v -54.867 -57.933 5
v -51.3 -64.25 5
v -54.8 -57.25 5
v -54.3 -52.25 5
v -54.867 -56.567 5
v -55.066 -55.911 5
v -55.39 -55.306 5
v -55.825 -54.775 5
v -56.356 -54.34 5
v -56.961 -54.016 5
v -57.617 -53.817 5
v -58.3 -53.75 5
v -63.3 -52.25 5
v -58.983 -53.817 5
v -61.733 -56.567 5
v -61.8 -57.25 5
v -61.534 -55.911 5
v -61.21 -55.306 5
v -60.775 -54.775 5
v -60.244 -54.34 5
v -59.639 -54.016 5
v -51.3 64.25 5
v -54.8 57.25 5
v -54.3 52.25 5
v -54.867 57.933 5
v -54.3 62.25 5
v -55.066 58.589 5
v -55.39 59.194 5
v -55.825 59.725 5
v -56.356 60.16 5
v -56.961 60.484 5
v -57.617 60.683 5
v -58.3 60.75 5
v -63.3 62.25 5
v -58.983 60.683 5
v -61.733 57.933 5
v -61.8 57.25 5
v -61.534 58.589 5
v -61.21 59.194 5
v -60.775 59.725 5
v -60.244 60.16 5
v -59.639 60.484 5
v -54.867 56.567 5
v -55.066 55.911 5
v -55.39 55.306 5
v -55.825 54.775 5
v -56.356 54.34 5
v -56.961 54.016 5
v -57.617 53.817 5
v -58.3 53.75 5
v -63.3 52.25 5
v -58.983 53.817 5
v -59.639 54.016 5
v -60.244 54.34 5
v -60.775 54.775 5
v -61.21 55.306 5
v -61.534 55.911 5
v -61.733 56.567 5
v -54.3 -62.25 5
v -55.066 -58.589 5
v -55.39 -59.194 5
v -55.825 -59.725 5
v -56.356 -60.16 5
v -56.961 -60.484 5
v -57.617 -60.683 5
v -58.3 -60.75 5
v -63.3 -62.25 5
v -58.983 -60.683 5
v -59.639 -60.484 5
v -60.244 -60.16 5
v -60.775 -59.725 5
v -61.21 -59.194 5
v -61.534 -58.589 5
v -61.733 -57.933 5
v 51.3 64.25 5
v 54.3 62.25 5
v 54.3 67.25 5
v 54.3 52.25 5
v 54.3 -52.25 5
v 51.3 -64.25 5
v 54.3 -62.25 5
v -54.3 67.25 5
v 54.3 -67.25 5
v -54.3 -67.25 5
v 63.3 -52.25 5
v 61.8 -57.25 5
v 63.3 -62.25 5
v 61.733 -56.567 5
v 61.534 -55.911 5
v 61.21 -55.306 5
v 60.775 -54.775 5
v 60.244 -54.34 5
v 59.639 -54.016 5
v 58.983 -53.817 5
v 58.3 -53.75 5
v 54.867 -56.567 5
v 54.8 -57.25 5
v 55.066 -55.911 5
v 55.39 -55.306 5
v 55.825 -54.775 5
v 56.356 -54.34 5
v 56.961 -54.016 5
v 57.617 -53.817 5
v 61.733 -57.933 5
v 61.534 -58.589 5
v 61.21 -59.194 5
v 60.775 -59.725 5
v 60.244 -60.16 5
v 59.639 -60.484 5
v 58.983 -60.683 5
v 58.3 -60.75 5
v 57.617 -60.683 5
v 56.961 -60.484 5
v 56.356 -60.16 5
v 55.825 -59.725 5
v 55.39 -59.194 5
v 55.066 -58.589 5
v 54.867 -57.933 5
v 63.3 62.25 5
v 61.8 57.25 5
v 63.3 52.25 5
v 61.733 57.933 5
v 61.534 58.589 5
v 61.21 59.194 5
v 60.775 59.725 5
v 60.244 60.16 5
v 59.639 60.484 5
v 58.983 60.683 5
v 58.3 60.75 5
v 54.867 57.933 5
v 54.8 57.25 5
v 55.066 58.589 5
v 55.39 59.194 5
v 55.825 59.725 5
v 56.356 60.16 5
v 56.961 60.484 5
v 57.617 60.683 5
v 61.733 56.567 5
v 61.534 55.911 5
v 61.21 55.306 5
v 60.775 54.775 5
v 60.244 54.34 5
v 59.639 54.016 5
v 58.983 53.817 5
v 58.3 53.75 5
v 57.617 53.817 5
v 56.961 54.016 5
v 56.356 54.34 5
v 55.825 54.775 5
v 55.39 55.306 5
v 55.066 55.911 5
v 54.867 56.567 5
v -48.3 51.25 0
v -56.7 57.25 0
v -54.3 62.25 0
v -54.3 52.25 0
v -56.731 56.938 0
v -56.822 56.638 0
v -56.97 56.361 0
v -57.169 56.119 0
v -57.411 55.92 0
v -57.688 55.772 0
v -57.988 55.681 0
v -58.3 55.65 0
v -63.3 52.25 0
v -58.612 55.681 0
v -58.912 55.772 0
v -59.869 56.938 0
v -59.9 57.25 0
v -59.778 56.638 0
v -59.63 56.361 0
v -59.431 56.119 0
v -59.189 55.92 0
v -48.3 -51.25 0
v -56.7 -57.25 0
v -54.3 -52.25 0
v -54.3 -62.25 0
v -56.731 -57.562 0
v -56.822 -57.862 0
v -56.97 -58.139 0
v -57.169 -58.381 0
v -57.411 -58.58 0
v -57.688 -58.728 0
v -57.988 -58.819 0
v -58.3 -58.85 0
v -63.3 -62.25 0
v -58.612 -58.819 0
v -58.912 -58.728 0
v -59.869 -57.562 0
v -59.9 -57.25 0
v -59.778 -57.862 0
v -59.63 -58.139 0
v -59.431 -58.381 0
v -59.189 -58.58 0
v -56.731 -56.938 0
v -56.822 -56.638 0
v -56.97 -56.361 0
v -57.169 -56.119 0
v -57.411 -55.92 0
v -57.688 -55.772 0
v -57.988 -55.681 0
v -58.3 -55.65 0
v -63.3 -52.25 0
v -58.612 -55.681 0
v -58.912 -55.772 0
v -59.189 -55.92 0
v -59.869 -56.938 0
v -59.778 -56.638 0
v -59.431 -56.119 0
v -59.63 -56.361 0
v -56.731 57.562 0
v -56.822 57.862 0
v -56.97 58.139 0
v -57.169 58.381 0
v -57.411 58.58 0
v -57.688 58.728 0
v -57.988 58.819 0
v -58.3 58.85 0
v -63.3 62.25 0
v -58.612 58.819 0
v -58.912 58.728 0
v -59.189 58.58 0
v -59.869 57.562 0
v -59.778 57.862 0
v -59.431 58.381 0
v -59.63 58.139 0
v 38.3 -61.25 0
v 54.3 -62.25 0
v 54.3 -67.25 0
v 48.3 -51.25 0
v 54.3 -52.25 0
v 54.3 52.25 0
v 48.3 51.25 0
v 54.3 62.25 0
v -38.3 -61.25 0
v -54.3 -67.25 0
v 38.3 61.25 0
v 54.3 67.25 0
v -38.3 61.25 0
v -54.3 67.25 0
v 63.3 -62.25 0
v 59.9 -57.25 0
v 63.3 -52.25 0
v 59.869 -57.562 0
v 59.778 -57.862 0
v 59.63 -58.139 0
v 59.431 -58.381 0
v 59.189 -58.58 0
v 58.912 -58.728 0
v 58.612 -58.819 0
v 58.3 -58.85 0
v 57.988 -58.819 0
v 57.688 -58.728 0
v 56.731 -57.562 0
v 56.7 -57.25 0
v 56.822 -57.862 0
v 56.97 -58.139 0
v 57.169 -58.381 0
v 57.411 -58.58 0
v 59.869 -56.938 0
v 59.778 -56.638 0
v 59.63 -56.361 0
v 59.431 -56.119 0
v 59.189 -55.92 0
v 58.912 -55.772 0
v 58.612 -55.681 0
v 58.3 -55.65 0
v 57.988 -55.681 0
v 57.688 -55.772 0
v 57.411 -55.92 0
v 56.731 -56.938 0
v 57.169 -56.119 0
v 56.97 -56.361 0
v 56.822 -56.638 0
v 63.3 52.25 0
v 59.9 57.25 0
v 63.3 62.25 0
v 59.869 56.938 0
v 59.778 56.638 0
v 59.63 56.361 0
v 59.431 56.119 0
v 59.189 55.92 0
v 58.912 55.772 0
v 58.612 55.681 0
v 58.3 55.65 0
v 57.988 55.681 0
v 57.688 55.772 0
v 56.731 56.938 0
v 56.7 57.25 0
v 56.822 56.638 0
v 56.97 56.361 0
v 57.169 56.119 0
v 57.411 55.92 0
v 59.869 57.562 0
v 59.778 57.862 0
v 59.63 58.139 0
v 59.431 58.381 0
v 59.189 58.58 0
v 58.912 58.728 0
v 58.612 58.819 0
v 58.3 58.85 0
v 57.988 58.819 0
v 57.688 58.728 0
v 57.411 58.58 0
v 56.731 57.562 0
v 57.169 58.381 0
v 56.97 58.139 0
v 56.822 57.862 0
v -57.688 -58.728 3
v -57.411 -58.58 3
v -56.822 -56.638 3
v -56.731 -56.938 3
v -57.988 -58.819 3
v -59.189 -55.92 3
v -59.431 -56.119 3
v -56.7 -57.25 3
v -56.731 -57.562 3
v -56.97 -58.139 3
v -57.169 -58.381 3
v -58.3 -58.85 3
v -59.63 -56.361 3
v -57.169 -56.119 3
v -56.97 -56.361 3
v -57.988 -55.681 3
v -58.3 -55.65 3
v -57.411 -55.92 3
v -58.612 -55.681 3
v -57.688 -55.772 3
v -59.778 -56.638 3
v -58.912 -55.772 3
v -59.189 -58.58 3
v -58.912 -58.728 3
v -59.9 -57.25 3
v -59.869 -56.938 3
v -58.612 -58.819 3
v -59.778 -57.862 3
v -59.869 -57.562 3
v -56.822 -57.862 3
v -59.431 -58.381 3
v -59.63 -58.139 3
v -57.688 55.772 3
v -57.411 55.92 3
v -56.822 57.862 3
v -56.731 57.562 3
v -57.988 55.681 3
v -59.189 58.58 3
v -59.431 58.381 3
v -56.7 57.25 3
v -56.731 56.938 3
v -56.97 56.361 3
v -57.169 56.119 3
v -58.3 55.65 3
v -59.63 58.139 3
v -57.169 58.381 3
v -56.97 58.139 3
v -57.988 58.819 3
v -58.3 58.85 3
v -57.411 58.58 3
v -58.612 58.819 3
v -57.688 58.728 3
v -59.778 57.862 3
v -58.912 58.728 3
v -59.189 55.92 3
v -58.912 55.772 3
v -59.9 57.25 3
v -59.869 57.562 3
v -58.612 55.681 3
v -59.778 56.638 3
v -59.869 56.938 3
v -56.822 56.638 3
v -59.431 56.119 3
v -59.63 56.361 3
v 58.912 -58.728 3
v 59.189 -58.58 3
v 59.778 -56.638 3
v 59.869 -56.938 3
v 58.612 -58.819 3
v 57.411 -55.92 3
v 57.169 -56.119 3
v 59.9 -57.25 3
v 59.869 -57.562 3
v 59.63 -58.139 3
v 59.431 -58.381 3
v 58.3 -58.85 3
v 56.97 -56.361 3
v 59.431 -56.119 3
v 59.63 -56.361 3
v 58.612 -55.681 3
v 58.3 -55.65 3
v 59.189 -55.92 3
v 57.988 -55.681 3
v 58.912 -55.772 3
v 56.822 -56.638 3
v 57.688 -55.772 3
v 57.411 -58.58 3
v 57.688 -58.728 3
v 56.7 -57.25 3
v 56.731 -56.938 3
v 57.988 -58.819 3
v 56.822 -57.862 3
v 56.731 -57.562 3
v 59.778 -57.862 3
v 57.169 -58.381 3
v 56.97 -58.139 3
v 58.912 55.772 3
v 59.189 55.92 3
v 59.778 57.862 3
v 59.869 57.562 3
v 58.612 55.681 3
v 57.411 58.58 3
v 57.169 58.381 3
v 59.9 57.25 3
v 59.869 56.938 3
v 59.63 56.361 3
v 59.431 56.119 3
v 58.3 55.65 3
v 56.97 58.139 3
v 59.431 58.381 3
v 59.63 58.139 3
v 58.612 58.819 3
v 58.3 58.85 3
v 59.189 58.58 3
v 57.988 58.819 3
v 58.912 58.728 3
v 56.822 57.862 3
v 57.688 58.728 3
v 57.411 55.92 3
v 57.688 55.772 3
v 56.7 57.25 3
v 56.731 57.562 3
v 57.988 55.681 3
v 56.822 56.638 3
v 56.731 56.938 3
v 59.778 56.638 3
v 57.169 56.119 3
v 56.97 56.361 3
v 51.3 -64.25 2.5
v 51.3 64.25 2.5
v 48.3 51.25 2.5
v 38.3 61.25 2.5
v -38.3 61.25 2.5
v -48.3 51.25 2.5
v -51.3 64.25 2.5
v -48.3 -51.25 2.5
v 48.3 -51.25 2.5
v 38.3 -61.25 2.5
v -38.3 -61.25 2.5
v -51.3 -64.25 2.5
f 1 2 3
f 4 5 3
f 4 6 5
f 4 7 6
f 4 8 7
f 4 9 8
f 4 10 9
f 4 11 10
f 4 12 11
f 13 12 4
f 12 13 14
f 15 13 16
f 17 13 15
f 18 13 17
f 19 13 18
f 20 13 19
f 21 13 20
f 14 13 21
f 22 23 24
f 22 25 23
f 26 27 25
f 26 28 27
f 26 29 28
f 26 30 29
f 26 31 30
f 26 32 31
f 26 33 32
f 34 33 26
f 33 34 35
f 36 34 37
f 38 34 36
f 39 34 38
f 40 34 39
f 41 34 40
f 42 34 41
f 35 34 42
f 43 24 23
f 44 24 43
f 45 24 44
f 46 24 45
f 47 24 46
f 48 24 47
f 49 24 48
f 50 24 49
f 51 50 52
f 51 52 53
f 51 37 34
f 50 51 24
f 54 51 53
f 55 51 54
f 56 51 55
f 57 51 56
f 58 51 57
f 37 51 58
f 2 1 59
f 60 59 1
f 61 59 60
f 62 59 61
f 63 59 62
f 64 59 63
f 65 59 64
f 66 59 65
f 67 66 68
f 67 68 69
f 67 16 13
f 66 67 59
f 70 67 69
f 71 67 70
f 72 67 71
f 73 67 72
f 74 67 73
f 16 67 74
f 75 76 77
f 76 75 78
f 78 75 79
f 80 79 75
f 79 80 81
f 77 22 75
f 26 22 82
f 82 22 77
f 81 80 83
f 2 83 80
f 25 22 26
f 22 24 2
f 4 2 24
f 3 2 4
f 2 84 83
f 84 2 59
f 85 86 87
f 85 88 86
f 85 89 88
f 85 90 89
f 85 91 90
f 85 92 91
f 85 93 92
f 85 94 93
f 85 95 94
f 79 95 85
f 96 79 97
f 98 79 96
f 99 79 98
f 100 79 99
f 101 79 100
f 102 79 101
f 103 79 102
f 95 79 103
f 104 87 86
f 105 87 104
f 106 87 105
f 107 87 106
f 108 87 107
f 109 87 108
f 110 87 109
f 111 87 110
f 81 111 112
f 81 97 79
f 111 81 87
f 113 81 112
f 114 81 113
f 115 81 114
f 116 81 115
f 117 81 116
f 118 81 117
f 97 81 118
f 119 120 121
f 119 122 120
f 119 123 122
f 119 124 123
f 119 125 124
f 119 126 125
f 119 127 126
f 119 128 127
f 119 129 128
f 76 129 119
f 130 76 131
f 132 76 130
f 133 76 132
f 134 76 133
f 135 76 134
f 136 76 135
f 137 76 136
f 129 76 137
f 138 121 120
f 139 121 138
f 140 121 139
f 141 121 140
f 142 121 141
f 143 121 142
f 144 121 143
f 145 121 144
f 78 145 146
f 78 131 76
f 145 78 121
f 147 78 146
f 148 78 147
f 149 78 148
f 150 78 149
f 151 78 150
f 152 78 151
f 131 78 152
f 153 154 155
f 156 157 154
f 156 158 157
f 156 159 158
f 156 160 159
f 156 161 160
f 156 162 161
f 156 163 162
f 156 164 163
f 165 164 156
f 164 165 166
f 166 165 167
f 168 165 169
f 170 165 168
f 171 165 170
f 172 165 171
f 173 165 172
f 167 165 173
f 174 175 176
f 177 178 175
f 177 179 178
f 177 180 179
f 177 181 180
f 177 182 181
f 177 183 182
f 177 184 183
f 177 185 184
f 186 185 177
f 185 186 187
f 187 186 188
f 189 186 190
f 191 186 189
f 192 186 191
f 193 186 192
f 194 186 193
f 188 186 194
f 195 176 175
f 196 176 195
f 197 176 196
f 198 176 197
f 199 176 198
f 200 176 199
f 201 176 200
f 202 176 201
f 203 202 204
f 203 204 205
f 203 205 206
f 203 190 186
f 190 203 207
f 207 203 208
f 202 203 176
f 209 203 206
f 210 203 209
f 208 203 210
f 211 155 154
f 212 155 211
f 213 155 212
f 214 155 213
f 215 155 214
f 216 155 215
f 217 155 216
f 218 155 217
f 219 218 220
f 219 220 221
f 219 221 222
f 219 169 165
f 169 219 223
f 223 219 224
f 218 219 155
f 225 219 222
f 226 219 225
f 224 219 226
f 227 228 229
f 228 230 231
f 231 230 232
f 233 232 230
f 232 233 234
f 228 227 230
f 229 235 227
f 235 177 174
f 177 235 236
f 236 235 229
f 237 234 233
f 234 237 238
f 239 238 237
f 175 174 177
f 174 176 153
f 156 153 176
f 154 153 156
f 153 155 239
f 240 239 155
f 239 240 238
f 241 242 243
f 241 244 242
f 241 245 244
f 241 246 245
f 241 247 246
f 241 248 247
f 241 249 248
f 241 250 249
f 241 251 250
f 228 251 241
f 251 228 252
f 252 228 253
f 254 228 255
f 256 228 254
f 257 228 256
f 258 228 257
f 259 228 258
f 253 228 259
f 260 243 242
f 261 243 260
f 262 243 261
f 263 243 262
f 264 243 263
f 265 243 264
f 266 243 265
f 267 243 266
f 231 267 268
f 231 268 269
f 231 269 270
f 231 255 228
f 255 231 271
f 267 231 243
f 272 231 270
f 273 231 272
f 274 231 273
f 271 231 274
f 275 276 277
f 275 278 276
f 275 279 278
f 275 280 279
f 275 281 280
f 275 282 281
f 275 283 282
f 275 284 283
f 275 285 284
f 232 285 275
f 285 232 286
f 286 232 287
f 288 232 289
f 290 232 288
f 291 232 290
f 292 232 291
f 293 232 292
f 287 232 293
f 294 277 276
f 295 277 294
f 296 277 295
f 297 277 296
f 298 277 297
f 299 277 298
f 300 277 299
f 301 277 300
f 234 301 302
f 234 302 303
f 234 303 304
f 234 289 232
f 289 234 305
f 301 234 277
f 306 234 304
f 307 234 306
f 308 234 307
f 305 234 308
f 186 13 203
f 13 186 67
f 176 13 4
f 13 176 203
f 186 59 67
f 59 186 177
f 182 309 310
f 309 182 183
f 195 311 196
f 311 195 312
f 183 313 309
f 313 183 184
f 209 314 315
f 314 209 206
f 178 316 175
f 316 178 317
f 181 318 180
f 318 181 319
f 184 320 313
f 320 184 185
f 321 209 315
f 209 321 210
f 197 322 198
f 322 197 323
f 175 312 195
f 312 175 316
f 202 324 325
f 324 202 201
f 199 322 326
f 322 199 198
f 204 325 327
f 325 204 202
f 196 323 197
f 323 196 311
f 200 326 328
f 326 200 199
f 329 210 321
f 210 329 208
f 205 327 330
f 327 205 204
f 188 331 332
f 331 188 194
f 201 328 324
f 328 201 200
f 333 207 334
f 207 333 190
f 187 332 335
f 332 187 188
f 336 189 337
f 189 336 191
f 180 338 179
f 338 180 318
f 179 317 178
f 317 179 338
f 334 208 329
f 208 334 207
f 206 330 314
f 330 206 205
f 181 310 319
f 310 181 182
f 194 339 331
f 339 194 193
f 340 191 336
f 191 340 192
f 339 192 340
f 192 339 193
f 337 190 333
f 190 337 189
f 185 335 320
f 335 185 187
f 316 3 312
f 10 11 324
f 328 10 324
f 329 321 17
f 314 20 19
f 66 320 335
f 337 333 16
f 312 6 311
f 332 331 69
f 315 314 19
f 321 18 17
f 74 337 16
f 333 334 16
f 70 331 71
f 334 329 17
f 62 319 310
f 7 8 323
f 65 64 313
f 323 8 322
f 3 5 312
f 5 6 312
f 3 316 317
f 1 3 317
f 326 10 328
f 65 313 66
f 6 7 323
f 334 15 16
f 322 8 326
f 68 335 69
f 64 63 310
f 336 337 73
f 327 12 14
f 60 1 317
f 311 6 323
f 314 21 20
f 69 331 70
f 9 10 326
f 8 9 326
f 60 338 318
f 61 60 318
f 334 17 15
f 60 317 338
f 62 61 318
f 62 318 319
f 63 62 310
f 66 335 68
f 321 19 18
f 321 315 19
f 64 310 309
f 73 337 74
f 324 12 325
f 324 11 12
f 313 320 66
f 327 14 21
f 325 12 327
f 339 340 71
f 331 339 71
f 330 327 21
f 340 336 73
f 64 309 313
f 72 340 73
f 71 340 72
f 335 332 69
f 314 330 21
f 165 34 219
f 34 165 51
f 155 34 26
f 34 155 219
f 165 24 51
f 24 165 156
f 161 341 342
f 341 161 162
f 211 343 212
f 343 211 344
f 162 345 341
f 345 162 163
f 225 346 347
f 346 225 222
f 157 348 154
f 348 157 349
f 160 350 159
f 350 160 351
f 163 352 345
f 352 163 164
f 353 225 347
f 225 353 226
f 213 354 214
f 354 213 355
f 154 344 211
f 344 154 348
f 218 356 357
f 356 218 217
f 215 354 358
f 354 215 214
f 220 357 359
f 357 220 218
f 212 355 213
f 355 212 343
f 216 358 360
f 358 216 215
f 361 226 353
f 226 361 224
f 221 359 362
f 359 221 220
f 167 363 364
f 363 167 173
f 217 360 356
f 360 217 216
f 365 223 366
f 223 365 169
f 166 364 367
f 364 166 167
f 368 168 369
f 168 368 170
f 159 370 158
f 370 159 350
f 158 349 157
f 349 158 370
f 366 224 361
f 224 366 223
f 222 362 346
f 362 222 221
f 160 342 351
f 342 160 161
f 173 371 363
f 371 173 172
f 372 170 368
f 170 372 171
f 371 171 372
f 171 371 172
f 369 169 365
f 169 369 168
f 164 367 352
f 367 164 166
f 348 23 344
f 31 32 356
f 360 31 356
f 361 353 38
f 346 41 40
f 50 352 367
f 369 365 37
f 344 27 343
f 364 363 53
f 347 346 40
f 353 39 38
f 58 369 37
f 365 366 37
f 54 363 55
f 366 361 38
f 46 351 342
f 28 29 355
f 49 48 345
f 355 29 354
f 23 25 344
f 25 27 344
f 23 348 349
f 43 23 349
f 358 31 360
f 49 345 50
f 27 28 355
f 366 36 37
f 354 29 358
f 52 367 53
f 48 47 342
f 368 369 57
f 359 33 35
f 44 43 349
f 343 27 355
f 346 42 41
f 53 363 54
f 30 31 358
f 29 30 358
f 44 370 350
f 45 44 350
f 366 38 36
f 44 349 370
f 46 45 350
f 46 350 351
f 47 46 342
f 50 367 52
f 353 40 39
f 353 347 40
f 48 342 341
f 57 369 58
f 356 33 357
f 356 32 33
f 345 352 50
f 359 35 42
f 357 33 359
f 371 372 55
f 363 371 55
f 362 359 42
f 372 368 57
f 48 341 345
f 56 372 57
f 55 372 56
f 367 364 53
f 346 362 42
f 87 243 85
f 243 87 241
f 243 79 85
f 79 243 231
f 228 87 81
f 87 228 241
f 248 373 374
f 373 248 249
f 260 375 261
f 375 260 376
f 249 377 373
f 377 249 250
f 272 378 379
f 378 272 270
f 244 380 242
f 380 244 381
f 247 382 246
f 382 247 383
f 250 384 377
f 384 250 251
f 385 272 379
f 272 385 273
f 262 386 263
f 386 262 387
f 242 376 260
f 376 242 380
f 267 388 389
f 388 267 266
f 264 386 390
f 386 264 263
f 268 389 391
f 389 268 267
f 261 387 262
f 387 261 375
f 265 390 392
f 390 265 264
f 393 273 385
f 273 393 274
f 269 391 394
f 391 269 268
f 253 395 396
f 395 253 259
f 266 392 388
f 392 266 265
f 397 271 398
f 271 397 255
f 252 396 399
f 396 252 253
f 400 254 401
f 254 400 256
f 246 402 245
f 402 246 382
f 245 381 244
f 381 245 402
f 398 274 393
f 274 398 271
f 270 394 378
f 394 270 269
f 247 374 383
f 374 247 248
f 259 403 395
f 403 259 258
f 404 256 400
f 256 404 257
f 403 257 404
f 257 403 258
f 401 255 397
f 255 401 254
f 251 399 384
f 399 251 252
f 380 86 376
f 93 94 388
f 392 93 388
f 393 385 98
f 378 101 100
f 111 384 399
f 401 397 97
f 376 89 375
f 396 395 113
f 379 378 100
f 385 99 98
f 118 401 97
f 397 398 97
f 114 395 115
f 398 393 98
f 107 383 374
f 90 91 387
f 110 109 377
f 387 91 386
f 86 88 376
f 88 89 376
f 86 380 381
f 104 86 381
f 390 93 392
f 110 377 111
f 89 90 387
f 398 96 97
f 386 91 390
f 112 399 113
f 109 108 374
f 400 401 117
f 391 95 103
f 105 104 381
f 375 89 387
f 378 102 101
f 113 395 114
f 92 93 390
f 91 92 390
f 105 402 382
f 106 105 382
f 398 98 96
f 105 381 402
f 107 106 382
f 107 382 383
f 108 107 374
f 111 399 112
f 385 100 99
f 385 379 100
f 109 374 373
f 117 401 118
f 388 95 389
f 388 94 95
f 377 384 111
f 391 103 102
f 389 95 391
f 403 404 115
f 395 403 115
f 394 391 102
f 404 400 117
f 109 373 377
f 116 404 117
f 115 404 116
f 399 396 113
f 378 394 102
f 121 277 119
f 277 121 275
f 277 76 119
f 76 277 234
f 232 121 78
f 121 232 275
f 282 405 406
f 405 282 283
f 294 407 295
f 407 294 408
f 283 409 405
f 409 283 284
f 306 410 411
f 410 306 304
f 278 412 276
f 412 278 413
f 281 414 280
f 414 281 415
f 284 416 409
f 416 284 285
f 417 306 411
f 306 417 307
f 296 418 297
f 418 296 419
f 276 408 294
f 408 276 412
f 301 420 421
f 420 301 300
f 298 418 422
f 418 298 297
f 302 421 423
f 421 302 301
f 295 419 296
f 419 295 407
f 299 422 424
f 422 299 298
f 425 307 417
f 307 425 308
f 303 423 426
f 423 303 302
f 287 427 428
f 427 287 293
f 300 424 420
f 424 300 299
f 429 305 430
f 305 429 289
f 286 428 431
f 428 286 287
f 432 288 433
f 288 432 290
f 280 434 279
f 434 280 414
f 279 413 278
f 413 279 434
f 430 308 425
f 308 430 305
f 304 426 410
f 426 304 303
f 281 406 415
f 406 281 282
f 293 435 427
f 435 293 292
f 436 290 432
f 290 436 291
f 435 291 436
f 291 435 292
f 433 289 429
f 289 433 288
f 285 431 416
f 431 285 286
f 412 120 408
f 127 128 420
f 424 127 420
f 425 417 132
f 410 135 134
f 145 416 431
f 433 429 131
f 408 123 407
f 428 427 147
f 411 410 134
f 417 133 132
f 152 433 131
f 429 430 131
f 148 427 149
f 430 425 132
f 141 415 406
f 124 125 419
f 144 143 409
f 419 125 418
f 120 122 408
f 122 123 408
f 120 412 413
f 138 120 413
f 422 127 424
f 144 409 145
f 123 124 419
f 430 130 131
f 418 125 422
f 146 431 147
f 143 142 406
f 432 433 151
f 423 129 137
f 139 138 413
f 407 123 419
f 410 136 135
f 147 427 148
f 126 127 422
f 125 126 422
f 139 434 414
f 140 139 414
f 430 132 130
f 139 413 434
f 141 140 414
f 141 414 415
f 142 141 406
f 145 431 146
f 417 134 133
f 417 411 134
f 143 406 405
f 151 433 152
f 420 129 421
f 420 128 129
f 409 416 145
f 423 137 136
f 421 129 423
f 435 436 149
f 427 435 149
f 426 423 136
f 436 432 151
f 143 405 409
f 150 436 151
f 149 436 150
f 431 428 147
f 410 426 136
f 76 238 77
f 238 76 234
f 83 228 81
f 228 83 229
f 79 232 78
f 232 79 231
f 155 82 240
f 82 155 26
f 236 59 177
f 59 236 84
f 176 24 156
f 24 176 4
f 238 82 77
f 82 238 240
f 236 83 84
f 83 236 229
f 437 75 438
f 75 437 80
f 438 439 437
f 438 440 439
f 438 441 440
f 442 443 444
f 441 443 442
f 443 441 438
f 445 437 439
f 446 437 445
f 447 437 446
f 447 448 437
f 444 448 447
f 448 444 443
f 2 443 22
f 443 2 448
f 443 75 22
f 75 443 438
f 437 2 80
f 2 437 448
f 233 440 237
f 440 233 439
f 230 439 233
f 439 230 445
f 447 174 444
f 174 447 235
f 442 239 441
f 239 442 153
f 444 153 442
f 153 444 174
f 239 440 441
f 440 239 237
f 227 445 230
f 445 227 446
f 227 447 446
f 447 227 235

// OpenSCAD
/* difference() {
    translate([-45,-45])
    import("LensBoard_Toyo-view_blank_v2.stl");
   
    translate([0,0,-10])
    cube_center([130,140,50]);
    
    for(s=[-1:1]) for(t=[-1,1])
    translate([t*70,s*70,0])
    cylinder(d=3.2,h=20,$fn=32, center=true);
} */

GGL=4*25.4+1;
GGW=5*25.4+1.5;
GGT=1/16*25.4+0.5;

difference() {
    union() {
        cube_center([GGL+6,GGW+6,5]);
        
        for(t=[-1,1]) for(s=[-1,1])
        translate([t*(GGL/2+7),s*(GGW/2-7),0])
        difference() {
            cube_center([10,10,5]);
            cylinder(d=3.2,h=6,$fn=32);
            translate([0,0,3])
            cylinder(d1=3.2,d2=7,h=2,$fn=32);
        }
    }
    translate([0,0,2.5])
    cube_center([GGL,GGW,5]);
    minkowski() {
        cube_center([GGL-6-20,GGW-6-20,2.5]);
        cylinder($fn=4,d=20,h=0.0001);
    }
}

module cube_center(dims,r=0) {
    if(r==0) {
        translate([-dims[0]/2, -dims[1]/2, 0])
        cube(dims);
    } else {
        
        minkowski() {
            translate([-dims[0]/2+r, -dims[1]/2+r, 0])
            cube([dims[0]-2*r,dims[1]-2*r,dims[2]]);
            cylinder(r=r,h=0.00001,$fn=32);
        }
    }
}
